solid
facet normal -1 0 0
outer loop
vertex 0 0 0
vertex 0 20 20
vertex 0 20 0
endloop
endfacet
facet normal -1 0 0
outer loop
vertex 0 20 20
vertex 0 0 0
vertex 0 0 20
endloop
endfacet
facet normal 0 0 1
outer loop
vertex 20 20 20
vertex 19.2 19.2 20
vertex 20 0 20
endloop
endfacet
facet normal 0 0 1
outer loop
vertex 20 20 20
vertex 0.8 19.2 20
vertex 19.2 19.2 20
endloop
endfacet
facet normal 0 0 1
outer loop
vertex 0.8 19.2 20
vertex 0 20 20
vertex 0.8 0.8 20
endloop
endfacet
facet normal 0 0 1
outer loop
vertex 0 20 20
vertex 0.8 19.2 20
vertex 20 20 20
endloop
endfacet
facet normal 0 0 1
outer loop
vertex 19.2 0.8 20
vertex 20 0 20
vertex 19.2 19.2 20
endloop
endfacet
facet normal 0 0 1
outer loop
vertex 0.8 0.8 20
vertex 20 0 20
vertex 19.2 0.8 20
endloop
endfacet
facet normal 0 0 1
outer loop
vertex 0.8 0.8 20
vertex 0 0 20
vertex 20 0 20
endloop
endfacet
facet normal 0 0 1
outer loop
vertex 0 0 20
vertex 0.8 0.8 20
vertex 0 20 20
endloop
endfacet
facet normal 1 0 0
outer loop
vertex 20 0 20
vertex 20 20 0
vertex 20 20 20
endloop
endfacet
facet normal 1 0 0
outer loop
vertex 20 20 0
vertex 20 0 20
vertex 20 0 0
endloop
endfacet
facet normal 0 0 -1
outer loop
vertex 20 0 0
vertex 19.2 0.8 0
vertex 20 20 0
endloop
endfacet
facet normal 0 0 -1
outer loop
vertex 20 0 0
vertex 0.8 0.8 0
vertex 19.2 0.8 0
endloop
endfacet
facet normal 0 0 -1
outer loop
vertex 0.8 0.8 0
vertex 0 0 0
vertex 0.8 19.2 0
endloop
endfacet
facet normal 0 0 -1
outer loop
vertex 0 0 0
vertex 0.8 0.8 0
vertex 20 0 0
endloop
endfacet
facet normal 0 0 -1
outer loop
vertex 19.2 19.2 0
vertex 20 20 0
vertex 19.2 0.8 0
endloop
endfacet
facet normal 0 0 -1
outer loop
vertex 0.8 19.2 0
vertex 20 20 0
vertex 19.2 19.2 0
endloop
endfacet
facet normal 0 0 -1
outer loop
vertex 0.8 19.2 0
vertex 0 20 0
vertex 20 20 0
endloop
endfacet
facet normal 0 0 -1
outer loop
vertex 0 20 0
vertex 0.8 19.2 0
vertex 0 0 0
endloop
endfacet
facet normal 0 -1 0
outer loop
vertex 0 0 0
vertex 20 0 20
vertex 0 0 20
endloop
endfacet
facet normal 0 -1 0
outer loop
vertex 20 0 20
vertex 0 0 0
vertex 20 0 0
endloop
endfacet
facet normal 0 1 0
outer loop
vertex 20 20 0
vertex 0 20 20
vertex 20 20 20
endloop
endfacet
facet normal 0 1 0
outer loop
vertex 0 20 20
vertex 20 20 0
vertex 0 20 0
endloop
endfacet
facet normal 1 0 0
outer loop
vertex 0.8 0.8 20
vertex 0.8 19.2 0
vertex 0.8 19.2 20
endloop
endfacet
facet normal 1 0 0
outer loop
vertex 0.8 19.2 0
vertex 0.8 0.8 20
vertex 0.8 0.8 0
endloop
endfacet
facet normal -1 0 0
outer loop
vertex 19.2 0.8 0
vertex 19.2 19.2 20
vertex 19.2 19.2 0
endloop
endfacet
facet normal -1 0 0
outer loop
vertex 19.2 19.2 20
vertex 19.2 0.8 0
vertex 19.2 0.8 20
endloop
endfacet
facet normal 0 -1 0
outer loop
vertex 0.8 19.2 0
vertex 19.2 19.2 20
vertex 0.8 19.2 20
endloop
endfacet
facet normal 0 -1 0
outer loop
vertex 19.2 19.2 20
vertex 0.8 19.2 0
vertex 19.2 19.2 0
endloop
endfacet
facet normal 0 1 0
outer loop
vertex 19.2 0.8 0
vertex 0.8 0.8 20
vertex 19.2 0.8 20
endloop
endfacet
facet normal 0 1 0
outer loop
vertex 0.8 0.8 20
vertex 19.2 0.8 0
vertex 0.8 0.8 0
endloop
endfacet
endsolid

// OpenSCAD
difference(){
    cube([20,20,20]);
    translate([.80,.80,-.1]) cube([18.4,18.4,20.2]);
}
